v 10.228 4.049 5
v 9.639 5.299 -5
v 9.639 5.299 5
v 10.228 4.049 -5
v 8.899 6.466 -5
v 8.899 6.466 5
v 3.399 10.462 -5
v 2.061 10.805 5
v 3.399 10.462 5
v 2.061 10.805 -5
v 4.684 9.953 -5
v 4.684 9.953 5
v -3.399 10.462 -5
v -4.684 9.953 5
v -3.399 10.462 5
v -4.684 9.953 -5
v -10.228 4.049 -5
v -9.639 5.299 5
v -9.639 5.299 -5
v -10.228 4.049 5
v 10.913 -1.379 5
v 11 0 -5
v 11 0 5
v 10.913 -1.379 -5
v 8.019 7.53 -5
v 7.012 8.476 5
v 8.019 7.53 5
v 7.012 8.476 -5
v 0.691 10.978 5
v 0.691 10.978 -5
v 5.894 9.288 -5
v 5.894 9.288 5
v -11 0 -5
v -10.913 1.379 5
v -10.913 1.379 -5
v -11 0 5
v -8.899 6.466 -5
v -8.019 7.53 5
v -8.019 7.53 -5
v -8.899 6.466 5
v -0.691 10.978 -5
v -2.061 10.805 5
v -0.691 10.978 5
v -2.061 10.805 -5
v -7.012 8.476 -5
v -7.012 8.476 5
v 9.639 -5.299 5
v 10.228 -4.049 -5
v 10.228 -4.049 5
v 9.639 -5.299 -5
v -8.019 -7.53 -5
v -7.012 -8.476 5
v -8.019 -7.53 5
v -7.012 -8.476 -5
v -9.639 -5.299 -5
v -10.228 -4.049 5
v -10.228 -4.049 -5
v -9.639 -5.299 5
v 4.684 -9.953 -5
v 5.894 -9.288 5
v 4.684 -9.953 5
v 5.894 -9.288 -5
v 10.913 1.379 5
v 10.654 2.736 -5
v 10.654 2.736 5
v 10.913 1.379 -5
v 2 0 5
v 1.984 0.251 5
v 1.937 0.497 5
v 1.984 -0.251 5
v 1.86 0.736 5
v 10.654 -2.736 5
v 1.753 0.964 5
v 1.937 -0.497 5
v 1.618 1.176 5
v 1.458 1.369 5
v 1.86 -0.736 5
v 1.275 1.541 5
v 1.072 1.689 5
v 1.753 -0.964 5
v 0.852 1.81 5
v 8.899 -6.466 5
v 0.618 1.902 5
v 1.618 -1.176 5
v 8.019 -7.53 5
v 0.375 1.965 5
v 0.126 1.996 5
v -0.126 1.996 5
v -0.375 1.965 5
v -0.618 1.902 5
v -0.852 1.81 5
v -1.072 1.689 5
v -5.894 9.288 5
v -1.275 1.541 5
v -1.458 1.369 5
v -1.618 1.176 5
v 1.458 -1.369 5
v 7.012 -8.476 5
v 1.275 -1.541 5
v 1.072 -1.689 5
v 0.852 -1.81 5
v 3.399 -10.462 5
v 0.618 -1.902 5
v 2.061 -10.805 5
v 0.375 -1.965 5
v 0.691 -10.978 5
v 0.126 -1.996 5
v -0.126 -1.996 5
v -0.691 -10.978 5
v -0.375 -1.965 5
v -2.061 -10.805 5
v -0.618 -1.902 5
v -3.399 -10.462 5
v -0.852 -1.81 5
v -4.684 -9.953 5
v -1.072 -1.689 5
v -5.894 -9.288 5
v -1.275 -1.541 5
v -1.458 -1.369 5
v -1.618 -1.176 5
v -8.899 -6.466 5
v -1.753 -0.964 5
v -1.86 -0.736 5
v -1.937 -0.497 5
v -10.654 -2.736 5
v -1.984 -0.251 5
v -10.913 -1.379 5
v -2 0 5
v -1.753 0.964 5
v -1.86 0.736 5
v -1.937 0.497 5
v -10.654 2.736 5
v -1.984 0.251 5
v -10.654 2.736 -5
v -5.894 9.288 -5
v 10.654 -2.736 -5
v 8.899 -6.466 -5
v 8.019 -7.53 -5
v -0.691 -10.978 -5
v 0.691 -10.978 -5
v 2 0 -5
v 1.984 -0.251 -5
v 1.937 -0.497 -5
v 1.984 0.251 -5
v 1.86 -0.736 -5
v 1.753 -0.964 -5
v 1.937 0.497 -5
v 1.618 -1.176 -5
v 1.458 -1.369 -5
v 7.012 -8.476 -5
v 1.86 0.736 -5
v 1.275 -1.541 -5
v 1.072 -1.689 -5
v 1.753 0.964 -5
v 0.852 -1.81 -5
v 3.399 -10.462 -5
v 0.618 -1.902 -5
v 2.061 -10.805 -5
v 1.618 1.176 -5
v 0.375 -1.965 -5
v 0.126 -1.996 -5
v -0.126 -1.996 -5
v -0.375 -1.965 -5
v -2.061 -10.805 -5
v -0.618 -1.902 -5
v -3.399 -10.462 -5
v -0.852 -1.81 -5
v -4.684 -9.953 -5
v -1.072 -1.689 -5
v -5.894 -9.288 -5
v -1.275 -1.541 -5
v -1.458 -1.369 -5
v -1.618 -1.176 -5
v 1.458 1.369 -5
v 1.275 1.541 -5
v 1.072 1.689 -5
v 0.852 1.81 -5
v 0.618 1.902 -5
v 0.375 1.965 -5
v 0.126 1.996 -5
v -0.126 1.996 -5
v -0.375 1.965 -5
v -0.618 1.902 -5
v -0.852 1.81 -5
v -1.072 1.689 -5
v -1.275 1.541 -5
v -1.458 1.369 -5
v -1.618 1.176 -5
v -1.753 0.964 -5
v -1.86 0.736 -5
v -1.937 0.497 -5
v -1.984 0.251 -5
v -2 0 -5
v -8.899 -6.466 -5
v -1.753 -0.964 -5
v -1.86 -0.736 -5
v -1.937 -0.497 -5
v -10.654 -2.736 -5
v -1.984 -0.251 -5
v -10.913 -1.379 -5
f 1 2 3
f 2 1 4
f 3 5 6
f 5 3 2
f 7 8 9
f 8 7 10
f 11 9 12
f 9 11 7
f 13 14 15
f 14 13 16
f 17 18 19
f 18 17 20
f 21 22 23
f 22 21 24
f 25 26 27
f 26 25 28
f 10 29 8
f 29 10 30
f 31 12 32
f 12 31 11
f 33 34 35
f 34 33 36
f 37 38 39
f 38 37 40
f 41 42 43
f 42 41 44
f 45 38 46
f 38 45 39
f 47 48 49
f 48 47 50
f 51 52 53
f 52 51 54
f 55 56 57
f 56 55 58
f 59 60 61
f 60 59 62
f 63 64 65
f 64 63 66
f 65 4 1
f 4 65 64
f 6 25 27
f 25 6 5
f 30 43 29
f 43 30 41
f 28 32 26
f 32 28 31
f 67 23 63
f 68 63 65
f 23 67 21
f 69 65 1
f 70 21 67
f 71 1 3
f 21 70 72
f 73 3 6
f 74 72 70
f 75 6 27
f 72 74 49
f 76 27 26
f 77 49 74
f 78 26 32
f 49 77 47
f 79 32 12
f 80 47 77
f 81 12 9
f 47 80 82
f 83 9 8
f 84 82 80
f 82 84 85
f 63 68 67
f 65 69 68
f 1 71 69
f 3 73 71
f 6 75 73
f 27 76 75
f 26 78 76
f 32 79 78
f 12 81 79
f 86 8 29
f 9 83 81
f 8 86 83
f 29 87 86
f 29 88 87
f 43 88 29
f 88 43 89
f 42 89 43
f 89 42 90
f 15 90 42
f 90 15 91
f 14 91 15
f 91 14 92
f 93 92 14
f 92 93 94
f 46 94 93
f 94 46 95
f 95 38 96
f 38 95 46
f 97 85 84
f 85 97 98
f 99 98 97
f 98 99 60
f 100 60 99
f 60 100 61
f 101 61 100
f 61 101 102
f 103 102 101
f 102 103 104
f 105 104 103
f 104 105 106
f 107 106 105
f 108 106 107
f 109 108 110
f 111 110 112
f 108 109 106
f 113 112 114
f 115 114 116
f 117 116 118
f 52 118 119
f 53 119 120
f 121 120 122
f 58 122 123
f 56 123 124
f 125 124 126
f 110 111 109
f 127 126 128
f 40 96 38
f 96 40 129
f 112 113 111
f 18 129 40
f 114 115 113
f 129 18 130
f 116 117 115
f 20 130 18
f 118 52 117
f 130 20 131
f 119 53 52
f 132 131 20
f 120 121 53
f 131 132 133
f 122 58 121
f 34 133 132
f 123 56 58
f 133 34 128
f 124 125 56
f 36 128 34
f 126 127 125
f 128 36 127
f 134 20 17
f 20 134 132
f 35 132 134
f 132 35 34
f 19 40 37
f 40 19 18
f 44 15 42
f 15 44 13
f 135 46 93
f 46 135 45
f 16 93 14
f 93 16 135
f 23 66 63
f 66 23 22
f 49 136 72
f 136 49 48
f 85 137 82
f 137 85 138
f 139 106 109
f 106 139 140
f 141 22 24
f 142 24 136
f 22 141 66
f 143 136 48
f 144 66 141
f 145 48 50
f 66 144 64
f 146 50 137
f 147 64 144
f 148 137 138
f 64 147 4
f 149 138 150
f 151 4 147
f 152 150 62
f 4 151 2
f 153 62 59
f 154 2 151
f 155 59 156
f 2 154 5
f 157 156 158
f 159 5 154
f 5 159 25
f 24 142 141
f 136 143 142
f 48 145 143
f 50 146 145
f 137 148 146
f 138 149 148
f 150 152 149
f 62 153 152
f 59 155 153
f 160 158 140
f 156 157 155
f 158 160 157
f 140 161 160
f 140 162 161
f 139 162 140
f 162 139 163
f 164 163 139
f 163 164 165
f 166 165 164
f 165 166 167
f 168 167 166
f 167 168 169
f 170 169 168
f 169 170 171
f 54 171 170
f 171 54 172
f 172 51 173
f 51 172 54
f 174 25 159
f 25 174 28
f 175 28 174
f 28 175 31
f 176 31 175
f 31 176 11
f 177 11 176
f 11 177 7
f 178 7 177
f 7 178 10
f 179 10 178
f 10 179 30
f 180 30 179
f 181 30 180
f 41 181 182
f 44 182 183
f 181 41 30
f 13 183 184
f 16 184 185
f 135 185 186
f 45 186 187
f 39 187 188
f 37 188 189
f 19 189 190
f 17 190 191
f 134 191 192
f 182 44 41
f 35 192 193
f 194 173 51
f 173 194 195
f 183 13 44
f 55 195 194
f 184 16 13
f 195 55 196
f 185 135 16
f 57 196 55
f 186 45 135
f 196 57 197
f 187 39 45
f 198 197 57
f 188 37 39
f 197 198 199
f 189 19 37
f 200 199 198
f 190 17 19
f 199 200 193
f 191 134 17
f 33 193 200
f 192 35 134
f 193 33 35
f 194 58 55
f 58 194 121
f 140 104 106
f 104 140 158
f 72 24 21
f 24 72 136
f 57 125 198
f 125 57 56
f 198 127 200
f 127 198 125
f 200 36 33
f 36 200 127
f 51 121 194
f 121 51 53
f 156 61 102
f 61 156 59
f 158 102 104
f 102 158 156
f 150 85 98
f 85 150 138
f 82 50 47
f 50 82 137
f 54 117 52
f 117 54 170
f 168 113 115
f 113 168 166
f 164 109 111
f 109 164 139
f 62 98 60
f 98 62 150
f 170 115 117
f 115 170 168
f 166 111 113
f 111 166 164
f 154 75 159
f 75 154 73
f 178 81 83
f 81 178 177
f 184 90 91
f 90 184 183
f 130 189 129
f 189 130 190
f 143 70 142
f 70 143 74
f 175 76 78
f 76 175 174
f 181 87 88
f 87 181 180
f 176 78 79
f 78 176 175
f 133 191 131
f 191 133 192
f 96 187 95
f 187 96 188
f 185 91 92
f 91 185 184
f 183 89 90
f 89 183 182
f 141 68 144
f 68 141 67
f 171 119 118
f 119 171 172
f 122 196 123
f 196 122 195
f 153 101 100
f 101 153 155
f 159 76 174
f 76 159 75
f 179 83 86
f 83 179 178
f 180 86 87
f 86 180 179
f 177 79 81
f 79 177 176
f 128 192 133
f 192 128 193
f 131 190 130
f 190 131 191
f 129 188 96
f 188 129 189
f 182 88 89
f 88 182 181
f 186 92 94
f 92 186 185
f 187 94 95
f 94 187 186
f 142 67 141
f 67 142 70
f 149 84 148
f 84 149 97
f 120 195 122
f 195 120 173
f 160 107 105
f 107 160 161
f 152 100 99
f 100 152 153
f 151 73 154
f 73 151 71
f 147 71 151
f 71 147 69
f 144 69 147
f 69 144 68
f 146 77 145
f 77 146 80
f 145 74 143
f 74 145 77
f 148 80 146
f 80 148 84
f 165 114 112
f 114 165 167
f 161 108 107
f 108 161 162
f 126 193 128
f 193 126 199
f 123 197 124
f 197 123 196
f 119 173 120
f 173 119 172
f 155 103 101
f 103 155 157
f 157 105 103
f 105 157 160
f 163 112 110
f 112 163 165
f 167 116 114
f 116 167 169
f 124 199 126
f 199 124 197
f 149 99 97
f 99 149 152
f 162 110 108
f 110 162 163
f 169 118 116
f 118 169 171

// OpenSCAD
$fn = 50;


difference() {
	union() {
		translate(v = [0, 0, -5.0000000000]) {
			cylinder(h = 10, r = 11.0000000000);
		}
	}
	union() {
		translate(v = [0, 0, -100.0000000000]) {
			cylinder(h = 200, r = 2);
		}
	}
}
